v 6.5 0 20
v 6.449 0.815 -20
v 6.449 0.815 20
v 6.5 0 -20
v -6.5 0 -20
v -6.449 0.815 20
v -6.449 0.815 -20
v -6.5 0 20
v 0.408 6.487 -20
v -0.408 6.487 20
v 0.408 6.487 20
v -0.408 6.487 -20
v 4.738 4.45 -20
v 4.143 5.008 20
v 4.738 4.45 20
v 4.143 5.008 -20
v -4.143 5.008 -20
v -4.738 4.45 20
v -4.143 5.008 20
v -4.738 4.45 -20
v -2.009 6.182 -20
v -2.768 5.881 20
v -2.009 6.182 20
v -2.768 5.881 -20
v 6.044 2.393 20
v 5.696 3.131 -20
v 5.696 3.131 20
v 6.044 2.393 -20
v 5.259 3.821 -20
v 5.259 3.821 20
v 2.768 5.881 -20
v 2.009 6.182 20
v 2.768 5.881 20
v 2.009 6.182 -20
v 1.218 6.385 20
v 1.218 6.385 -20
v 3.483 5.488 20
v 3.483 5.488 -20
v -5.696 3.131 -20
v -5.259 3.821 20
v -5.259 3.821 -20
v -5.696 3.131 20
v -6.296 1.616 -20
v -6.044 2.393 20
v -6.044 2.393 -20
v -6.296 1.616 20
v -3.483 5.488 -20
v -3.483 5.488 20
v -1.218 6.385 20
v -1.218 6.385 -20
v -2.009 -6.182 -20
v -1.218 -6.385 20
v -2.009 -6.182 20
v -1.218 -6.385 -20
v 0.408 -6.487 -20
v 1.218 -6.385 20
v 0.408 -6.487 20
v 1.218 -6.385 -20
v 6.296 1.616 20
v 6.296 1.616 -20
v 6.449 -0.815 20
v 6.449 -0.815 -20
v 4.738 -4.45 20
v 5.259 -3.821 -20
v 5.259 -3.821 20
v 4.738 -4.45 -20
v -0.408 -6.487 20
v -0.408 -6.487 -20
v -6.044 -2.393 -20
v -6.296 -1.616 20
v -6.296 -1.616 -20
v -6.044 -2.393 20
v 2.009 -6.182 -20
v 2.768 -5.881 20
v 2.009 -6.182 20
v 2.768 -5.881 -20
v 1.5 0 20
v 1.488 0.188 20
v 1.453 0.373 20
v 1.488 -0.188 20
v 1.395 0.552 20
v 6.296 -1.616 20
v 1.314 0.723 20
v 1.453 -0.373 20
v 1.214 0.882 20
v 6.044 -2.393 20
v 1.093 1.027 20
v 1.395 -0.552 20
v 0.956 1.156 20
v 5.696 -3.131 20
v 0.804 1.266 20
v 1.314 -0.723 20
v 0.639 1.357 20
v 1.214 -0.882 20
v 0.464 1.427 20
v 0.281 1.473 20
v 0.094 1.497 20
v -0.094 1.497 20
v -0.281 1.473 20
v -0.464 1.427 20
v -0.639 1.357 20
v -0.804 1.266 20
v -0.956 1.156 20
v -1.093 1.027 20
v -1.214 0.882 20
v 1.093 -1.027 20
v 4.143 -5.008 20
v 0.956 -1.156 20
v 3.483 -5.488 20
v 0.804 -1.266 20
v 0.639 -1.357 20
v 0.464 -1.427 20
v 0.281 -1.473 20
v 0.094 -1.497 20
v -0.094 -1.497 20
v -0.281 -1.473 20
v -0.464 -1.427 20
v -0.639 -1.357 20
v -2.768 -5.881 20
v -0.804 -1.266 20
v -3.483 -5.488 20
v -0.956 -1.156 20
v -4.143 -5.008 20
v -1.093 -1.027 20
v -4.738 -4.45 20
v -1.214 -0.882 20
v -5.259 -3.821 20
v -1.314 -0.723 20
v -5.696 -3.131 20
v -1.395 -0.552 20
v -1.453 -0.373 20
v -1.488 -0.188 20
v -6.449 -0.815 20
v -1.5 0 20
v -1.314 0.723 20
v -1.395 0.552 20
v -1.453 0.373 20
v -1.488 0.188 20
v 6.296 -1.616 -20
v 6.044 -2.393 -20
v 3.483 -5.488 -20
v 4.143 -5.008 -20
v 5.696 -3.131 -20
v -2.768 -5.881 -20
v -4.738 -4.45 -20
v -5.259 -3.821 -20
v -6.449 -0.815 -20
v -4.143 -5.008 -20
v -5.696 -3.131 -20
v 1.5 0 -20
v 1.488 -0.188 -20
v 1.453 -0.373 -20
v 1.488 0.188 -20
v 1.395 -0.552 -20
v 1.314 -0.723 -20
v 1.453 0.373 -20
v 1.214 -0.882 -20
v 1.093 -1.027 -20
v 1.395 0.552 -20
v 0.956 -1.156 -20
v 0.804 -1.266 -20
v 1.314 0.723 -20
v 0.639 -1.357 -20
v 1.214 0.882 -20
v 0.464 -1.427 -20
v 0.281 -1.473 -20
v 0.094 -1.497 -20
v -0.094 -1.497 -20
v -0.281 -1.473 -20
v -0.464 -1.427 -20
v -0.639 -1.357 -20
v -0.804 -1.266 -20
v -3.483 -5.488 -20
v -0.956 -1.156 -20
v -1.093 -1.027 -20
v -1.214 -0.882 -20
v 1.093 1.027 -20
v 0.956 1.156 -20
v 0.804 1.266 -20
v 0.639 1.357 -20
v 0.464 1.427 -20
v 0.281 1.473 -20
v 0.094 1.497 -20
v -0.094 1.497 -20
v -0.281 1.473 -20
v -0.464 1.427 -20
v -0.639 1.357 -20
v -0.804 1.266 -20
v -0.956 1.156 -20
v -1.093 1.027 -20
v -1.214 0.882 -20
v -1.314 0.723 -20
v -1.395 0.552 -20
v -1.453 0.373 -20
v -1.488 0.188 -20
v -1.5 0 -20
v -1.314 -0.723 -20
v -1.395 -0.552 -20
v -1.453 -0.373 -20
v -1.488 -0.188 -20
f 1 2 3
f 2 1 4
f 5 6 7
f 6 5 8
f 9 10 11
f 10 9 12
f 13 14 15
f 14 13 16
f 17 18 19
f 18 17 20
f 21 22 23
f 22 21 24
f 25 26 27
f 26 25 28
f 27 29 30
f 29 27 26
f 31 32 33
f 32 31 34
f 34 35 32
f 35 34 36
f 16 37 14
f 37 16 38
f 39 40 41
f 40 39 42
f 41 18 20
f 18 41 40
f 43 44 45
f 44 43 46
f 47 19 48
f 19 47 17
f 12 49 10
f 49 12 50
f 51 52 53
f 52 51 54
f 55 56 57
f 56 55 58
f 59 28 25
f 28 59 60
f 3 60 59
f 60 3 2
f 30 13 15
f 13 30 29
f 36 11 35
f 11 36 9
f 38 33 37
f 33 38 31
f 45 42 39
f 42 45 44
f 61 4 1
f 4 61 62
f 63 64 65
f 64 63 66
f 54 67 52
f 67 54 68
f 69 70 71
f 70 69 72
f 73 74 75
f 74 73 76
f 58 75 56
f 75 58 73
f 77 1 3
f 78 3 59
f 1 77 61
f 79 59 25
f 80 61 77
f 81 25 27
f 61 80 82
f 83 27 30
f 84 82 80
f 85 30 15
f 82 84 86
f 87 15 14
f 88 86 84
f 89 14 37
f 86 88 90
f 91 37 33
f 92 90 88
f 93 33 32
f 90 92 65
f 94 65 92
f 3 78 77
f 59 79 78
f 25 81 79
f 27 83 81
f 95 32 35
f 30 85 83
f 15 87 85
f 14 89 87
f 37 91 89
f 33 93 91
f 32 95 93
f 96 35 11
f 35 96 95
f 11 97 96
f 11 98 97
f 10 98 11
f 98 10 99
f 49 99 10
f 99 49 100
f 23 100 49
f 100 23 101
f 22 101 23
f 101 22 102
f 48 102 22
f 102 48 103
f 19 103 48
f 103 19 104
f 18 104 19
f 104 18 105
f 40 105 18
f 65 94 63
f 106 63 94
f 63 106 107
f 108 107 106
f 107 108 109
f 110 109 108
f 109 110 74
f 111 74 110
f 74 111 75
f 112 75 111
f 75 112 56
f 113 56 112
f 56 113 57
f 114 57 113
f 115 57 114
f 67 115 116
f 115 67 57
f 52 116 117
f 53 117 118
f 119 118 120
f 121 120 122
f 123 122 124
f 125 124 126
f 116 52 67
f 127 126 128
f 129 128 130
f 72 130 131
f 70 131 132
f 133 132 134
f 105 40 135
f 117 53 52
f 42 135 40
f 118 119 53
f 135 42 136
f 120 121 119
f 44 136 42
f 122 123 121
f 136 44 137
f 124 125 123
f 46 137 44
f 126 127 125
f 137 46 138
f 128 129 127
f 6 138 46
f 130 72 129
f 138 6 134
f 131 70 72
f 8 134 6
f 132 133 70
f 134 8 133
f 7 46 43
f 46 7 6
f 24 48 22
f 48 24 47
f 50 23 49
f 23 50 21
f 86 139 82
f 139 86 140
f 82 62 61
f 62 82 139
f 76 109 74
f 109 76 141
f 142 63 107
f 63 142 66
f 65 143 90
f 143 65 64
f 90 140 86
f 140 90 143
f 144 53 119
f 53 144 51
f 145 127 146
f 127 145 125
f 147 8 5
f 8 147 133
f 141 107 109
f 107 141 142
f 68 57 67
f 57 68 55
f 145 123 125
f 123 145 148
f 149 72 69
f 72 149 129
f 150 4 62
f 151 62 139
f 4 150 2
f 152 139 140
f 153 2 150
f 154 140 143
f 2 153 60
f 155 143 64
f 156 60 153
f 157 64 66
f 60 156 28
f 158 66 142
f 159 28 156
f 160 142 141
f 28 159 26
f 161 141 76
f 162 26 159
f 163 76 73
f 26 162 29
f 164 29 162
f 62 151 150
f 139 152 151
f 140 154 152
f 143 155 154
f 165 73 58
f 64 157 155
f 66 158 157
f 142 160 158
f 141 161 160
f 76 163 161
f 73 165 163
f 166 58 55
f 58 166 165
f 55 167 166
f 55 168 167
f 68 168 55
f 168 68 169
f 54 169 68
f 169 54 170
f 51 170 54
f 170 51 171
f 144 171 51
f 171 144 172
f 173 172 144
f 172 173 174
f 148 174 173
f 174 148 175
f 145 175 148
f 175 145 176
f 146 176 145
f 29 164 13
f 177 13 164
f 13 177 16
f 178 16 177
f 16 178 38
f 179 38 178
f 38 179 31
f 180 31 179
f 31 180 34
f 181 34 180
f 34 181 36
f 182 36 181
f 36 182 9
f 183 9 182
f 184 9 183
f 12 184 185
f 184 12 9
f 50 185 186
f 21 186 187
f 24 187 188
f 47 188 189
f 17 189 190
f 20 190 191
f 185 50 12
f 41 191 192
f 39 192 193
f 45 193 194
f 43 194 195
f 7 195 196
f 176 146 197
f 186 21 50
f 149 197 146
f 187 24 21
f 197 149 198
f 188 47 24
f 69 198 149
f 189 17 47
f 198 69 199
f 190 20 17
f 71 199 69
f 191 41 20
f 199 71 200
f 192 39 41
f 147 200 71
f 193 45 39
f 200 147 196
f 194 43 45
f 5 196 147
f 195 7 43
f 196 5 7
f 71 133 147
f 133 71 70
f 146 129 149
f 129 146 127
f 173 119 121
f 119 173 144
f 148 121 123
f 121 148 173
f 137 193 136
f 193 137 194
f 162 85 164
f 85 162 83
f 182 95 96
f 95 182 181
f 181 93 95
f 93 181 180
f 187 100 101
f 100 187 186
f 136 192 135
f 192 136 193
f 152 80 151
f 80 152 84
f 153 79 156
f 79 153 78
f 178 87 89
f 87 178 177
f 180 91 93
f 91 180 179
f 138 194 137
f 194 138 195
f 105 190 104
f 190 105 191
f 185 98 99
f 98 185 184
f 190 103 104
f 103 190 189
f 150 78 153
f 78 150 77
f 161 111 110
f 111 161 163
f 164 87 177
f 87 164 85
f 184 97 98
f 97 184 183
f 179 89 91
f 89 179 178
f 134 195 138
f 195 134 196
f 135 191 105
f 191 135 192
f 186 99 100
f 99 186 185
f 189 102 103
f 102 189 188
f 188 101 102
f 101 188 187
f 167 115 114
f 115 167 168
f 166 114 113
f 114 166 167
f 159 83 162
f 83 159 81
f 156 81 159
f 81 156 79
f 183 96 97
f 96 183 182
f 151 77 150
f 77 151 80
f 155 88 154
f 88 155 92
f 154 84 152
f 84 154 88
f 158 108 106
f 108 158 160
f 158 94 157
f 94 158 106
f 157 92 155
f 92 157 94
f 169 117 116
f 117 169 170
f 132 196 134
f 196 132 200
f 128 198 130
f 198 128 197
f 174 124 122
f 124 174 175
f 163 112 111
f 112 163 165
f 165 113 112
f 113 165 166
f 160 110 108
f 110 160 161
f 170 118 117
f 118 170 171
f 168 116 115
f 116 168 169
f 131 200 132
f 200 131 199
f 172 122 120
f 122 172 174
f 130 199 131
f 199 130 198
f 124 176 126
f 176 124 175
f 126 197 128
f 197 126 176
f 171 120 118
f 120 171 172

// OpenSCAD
$fn = 50;


difference() {
	union() {
		translate(v = [0, 0, -20.0000000000]) {
			cylinder(h = 40, r = 6.5000000000);
		}
	}
	union() {
		translate(v = [0, 0, -100.0000000000]) {
			cylinder(h = 200, r = 1.5000000000);
		}
	}
}
